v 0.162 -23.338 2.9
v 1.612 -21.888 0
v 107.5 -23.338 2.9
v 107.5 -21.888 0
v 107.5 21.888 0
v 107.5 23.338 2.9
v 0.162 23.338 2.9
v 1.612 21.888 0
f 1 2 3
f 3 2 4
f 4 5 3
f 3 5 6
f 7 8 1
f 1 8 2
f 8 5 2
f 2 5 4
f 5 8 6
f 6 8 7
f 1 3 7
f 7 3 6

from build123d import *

# Parameters (mm, degrees)
SKETCH1_W           = 107.5
SKETCH1_H           = 23.5
BOSS_EXTRUDE1_DEPTH = 3
CUT_EXTRUDE1_DEPTH  = 109
CUT_EXTRUDE2_DEPTH  = 23.5
SKETCH4_W           = 107.387981152
SKETCH4_H           = 23.388196601
CUT_EXTRUDE3_DEPTH  = 0.1


with BuildPart() as part:
    # Sketch1 → Boss-Extrude1 (new body)
    with BuildSketch(Plane.XY):
        with Locations((53.75, 11.75)):
            Rectangle(SKETCH1_W, SKETCH1_H)
    boss_extrude1 = extrude(amount=BOSS_EXTRUDE1_DEPTH)

    # Sketch2 → Cut-Extrude1 (cut)
    with BuildSketch(Plane(origin=(107.5, 0, 0), x_dir=(0, 0, -1), z_dir=(1, 0, 0))):
        Polygon((-3.423606798, 23.6), (0.1, 21.838196601), (0.1, 23.6), align=None)
    cut_extrude1 = extrude(amount=-CUT_EXTRUDE1_DEPTH, mode=Mode.SUBTRACT)

    # Sketch3 → Cut-Extrude2 (cut)
    with BuildSketch(Plane.XZ):
        Polygon((-0.1, -0.1), (1.661792848, -0.1), (-0.1, 3.424099531), align=None)
    cut_extrude2 = extrude(amount=-CUT_EXTRUDE2_DEPTH, mode=Mode.SUBTRACT)

    # Sketch4 → Cut-Extrude3 (cut)
    with BuildSketch(Plane.XY.offset(3)):
        with Locations((53.806009424, 11.694098301)):
            Rectangle(SKETCH4_W, SKETCH4_H)
    cut_extrude3 = extrude(amount=-CUT_EXTRUDE3_DEPTH, mode=Mode.SUBTRACT)

    # Mirror2: Boss-Extrude1, Cut-Extrude1, Cut-Extrude2, Cut-Extrude3 across plane
    add(boss_extrude1.mirror(Plane(origin=(0, 0, 3), x_dir=(0, 0, 1), z_dir=(0, 1, 0))))
    add(cut_extrude1.mirror(Plane(origin=(0, 0, 3), x_dir=(0, 0, 1), z_dir=(0, 1, 0))), mode=Mode.SUBTRACT)
    add(cut_extrude2.mirror(Plane(origin=(0, 0, 3), x_dir=(0, 0, 1), z_dir=(0, 1, 0))), mode=Mode.SUBTRACT)
    add(cut_extrude3.mirror(Plane(origin=(0, 0, 3), x_dir=(0, 0, 1), z_dir=(0, 1, 0))), mode=Mode.SUBTRACT)


solid = part.part
